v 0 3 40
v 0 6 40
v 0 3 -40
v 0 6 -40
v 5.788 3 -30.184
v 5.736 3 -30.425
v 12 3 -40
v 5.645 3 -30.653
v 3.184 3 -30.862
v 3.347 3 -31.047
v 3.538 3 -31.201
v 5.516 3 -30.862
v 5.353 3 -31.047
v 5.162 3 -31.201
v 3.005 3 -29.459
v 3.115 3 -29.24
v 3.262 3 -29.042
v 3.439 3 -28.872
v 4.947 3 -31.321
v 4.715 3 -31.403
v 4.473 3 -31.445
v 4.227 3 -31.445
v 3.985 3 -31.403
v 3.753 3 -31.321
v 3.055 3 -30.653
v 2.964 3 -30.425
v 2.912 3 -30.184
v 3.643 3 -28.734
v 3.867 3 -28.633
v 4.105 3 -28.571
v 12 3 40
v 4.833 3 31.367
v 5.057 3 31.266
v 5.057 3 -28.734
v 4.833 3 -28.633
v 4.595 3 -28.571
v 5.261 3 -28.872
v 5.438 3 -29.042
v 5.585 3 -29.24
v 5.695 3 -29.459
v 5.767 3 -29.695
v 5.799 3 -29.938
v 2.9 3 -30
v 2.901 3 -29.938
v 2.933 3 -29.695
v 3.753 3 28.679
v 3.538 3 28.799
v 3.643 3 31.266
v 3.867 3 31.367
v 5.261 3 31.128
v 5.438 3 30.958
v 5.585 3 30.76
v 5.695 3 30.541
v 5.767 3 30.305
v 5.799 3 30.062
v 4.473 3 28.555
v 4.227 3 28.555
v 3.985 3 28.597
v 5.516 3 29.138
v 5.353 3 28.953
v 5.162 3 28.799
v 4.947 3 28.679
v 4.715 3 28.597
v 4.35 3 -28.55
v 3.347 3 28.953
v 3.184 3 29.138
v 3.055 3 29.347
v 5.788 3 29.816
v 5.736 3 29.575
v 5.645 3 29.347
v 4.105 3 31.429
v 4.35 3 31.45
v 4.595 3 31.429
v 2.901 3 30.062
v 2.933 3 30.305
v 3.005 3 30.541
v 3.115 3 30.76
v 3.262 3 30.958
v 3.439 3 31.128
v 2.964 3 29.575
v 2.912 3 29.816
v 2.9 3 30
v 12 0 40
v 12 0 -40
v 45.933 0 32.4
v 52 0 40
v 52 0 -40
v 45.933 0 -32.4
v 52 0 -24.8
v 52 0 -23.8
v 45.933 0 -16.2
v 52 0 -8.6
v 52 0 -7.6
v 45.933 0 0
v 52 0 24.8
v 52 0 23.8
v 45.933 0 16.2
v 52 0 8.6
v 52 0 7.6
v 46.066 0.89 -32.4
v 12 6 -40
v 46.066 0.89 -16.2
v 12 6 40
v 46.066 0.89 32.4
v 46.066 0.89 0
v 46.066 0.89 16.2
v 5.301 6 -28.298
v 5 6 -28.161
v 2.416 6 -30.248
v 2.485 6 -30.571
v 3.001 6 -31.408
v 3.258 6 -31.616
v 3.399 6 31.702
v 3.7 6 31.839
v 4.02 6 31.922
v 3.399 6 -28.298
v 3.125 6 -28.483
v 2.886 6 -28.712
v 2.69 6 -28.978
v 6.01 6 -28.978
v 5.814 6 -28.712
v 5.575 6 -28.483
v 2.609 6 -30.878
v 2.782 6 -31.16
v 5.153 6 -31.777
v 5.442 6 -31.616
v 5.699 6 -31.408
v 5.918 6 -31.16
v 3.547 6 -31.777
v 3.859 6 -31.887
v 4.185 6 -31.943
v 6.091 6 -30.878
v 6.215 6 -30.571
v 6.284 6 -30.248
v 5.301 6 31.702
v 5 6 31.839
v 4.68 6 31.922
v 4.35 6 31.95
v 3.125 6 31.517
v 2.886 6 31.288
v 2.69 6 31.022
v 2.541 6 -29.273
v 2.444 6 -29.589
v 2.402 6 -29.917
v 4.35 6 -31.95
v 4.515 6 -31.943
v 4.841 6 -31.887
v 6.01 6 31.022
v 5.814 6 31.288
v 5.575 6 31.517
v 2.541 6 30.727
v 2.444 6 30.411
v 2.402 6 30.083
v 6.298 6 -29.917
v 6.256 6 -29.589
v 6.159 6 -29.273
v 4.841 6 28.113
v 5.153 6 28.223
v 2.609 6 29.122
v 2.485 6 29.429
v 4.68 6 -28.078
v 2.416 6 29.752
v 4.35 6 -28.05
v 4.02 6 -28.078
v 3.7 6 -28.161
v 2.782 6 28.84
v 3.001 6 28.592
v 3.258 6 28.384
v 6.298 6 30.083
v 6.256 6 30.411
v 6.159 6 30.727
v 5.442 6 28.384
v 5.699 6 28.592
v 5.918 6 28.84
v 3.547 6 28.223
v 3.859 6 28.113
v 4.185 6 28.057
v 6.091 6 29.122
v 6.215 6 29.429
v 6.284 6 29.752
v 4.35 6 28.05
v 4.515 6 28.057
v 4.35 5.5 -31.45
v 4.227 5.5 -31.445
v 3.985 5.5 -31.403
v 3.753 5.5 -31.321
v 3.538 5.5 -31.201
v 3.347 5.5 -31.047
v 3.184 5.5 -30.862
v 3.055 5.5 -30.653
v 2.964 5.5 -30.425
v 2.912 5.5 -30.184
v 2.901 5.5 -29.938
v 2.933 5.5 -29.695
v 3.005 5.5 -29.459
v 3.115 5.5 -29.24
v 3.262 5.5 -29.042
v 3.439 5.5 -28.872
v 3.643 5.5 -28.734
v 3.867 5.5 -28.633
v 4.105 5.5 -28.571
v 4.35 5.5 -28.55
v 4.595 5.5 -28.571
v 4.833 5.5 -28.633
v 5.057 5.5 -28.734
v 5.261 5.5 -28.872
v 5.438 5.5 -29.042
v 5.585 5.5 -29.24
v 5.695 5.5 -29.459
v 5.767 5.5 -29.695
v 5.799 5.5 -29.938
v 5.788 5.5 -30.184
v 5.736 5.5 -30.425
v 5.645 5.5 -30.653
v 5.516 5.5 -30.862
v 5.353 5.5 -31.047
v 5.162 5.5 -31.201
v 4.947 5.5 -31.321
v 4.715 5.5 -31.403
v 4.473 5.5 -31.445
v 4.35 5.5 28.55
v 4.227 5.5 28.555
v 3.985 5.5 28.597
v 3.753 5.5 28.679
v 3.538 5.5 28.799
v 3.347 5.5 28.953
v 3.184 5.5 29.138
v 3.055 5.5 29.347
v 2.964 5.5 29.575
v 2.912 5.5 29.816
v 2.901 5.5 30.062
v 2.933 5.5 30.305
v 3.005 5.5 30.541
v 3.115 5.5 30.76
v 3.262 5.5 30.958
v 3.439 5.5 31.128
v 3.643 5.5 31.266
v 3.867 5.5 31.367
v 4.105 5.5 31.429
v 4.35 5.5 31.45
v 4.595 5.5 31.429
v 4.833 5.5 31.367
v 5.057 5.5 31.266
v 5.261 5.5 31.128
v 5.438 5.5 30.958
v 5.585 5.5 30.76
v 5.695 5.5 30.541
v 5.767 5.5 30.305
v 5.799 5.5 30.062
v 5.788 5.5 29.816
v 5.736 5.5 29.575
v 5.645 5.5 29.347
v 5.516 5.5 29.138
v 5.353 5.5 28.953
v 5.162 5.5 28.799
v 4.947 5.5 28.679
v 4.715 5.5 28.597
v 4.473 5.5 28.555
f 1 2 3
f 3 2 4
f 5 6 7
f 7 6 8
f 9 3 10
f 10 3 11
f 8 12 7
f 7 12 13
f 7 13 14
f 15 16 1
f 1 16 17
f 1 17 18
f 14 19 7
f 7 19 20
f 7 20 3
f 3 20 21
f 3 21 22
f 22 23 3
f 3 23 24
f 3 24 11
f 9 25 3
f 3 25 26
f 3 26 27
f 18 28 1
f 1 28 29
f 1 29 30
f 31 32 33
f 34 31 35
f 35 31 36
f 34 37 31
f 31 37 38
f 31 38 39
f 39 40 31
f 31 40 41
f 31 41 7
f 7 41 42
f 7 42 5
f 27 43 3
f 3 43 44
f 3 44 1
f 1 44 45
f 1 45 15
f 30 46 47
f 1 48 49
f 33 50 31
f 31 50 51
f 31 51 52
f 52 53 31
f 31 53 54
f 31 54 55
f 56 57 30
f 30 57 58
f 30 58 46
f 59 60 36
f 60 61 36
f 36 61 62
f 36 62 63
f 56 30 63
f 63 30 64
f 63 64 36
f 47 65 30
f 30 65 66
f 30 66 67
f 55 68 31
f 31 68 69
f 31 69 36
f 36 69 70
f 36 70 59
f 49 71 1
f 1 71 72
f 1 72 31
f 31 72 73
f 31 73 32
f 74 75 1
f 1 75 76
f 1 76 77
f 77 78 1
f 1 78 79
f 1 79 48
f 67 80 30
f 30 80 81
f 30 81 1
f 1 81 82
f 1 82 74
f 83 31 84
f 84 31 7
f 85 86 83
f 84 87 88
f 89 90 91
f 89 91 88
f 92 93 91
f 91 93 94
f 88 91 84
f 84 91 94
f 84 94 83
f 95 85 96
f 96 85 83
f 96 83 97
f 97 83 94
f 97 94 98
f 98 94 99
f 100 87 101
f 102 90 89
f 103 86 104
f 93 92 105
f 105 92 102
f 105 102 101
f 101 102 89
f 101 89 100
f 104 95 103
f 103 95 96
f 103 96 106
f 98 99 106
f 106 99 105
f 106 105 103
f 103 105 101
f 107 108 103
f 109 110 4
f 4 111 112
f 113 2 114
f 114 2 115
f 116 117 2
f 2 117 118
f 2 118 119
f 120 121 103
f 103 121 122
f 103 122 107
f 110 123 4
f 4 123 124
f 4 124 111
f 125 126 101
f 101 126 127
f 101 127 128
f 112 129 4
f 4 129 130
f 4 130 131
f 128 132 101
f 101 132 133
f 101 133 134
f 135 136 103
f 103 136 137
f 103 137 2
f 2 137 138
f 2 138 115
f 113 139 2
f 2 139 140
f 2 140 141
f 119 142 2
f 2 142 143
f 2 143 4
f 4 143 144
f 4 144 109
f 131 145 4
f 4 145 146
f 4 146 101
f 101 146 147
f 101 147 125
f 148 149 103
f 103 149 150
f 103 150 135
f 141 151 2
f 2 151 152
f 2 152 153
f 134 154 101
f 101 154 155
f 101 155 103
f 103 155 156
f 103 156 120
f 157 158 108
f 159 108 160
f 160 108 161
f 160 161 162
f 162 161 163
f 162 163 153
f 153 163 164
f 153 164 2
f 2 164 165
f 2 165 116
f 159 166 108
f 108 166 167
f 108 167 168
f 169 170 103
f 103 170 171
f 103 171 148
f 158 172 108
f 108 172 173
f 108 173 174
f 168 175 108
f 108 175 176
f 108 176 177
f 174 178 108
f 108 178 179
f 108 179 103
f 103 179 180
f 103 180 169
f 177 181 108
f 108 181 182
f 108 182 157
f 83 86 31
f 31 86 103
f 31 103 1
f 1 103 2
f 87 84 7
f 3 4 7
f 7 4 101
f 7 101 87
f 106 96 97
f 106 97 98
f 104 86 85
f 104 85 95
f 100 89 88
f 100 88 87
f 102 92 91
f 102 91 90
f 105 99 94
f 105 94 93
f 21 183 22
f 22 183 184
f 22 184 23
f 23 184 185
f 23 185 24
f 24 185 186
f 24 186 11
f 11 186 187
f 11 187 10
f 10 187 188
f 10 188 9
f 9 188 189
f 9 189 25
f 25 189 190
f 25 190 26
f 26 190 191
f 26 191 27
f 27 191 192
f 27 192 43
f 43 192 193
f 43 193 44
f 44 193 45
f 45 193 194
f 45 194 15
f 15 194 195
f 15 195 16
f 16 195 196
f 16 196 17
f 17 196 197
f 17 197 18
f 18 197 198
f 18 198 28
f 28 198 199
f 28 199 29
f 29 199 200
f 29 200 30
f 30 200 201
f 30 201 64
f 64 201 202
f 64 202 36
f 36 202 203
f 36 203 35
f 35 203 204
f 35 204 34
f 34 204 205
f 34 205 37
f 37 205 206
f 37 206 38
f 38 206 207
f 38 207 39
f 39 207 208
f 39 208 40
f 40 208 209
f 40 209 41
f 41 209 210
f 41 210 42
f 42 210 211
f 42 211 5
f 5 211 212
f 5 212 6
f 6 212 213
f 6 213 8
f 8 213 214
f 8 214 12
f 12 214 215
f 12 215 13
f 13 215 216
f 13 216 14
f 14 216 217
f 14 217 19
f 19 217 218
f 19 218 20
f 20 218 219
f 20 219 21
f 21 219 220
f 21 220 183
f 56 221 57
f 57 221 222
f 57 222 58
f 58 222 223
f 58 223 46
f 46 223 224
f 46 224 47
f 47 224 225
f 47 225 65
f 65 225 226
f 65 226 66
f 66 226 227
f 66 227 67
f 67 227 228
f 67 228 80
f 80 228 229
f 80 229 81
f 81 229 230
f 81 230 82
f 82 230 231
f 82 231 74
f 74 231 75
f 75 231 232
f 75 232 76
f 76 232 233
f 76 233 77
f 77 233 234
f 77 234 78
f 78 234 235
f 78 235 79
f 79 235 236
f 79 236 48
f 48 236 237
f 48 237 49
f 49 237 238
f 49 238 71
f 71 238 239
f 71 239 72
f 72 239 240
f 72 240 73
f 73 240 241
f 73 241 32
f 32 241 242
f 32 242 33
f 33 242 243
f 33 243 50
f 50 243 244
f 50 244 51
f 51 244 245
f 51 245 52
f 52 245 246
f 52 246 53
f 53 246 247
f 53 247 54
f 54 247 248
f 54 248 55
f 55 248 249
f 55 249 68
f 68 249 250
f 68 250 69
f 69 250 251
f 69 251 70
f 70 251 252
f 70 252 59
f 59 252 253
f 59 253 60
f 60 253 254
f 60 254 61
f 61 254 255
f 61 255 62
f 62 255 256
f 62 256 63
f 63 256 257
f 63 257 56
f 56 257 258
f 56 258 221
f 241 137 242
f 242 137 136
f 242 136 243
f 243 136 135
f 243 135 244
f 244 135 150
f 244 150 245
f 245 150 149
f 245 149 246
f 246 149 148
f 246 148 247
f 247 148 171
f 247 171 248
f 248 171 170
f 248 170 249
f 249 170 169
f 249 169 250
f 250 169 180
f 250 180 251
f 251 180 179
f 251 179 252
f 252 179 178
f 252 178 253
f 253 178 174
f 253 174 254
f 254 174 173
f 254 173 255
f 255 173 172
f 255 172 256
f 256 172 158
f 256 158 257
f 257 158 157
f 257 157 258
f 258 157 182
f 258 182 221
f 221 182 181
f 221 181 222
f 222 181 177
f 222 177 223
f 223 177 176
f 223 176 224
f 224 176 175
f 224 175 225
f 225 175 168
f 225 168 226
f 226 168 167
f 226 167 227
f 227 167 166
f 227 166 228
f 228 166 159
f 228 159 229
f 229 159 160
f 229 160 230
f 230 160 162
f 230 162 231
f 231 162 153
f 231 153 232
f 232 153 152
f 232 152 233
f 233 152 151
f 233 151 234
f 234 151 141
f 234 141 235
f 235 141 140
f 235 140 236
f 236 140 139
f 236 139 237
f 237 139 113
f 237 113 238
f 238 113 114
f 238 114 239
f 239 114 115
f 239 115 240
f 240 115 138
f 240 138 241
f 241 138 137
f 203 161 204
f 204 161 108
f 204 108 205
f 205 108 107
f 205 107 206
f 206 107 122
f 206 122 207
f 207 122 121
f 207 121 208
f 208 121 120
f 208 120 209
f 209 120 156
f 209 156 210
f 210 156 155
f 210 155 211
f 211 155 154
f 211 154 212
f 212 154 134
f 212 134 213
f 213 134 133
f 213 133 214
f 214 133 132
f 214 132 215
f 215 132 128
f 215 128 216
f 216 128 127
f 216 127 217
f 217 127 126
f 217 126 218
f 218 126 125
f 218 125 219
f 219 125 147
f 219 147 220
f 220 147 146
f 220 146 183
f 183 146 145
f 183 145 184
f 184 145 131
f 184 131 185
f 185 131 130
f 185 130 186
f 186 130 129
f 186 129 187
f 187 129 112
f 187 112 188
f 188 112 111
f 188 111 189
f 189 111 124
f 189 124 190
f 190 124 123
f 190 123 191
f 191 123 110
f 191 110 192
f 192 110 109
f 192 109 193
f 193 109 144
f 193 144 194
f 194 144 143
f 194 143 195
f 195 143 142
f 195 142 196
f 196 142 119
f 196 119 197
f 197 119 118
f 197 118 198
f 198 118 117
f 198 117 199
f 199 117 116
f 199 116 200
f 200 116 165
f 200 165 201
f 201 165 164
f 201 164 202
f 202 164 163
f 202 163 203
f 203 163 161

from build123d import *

# Parameters (mm, degrees)
BOSS_EXTRUDE1_DEPTH = 40
CUT_EXTRUDE1_DEPTH  = 40
SKETCH4_R           = 1.45
CUT_EXTRUDE2_DEPTH  = 40
CHAMFER1_SIZE       = 0.5


with BuildPart() as part:
    # Sketch1 → Boss-Extrude1 (new, symmetric)
    with BuildSketch(Plane.XY):
        Polygon((0, 6), (12, 6), (52, 0), (12, 0), (12, 3), (0, 3), align=None)
    extrude(amount=BOSS_EXTRUDE1_DEPTH, both=True)

    # Sketch3 → Cut-Extrude1 (cut, symmetric)
    with BuildSketch(Plane(origin=(1.144254279, 7.628361858, 0), x_dir=(0.9889363528682976, -0.14834045293024462, 0), z_dir=(0.14834045293024462, 0.9889363528682976, 0))):
        Polygon((51.424690349, -40), (45.424690349, -32.4), (51.424690349, -24.8), align=None)
        Polygon((51.424690349, -23.8), (51.424690349, -8.6), (45.424690349, -16.2), align=None)
        Polygon((51.424690349, -7.6), (51.424690349, 7.6), (45.424690349, 0), align=None)
        Polygon((51.424690349, 8.6), (51.424690349, 23.8), (45.424690349, 16.2), align=None)
        Polygon((51.424690349, 24.8), (51.424690349, 40), (45.424690349, 32.4), align=None)
    extrude(amount=CUT_EXTRUDE1_DEPTH, both=True, mode=Mode.SUBTRACT)

    # Sketch4 → Cut-Extrude2 (cut, symmetric)
    with BuildSketch(Plane(origin=(0, 6, 0), x_dir=(1, 0, 0), z_dir=(0, 1, 0))):
        with Locations(Location((4.35, -30, 0), (0, 0, 180))):
            Circle(SKETCH4_R)
        with Locations(Location((4.35, 30, 0), (0, 0, 180))):
            Circle(SKETCH4_R)
    extrude(amount=CUT_EXTRUDE2_DEPTH, both=True, mode=Mode.SUBTRACT)

    # Chamfer1
    chamfer1_edges = [part.edges().sort_by_distance(p)[0] for p in [
        (5.8, 6, 30),
        (5.8, 6, -30),
    ]]
    chamfer(chamfer1_edges, length=CHAMFER1_SIZE)


solid = part.part
